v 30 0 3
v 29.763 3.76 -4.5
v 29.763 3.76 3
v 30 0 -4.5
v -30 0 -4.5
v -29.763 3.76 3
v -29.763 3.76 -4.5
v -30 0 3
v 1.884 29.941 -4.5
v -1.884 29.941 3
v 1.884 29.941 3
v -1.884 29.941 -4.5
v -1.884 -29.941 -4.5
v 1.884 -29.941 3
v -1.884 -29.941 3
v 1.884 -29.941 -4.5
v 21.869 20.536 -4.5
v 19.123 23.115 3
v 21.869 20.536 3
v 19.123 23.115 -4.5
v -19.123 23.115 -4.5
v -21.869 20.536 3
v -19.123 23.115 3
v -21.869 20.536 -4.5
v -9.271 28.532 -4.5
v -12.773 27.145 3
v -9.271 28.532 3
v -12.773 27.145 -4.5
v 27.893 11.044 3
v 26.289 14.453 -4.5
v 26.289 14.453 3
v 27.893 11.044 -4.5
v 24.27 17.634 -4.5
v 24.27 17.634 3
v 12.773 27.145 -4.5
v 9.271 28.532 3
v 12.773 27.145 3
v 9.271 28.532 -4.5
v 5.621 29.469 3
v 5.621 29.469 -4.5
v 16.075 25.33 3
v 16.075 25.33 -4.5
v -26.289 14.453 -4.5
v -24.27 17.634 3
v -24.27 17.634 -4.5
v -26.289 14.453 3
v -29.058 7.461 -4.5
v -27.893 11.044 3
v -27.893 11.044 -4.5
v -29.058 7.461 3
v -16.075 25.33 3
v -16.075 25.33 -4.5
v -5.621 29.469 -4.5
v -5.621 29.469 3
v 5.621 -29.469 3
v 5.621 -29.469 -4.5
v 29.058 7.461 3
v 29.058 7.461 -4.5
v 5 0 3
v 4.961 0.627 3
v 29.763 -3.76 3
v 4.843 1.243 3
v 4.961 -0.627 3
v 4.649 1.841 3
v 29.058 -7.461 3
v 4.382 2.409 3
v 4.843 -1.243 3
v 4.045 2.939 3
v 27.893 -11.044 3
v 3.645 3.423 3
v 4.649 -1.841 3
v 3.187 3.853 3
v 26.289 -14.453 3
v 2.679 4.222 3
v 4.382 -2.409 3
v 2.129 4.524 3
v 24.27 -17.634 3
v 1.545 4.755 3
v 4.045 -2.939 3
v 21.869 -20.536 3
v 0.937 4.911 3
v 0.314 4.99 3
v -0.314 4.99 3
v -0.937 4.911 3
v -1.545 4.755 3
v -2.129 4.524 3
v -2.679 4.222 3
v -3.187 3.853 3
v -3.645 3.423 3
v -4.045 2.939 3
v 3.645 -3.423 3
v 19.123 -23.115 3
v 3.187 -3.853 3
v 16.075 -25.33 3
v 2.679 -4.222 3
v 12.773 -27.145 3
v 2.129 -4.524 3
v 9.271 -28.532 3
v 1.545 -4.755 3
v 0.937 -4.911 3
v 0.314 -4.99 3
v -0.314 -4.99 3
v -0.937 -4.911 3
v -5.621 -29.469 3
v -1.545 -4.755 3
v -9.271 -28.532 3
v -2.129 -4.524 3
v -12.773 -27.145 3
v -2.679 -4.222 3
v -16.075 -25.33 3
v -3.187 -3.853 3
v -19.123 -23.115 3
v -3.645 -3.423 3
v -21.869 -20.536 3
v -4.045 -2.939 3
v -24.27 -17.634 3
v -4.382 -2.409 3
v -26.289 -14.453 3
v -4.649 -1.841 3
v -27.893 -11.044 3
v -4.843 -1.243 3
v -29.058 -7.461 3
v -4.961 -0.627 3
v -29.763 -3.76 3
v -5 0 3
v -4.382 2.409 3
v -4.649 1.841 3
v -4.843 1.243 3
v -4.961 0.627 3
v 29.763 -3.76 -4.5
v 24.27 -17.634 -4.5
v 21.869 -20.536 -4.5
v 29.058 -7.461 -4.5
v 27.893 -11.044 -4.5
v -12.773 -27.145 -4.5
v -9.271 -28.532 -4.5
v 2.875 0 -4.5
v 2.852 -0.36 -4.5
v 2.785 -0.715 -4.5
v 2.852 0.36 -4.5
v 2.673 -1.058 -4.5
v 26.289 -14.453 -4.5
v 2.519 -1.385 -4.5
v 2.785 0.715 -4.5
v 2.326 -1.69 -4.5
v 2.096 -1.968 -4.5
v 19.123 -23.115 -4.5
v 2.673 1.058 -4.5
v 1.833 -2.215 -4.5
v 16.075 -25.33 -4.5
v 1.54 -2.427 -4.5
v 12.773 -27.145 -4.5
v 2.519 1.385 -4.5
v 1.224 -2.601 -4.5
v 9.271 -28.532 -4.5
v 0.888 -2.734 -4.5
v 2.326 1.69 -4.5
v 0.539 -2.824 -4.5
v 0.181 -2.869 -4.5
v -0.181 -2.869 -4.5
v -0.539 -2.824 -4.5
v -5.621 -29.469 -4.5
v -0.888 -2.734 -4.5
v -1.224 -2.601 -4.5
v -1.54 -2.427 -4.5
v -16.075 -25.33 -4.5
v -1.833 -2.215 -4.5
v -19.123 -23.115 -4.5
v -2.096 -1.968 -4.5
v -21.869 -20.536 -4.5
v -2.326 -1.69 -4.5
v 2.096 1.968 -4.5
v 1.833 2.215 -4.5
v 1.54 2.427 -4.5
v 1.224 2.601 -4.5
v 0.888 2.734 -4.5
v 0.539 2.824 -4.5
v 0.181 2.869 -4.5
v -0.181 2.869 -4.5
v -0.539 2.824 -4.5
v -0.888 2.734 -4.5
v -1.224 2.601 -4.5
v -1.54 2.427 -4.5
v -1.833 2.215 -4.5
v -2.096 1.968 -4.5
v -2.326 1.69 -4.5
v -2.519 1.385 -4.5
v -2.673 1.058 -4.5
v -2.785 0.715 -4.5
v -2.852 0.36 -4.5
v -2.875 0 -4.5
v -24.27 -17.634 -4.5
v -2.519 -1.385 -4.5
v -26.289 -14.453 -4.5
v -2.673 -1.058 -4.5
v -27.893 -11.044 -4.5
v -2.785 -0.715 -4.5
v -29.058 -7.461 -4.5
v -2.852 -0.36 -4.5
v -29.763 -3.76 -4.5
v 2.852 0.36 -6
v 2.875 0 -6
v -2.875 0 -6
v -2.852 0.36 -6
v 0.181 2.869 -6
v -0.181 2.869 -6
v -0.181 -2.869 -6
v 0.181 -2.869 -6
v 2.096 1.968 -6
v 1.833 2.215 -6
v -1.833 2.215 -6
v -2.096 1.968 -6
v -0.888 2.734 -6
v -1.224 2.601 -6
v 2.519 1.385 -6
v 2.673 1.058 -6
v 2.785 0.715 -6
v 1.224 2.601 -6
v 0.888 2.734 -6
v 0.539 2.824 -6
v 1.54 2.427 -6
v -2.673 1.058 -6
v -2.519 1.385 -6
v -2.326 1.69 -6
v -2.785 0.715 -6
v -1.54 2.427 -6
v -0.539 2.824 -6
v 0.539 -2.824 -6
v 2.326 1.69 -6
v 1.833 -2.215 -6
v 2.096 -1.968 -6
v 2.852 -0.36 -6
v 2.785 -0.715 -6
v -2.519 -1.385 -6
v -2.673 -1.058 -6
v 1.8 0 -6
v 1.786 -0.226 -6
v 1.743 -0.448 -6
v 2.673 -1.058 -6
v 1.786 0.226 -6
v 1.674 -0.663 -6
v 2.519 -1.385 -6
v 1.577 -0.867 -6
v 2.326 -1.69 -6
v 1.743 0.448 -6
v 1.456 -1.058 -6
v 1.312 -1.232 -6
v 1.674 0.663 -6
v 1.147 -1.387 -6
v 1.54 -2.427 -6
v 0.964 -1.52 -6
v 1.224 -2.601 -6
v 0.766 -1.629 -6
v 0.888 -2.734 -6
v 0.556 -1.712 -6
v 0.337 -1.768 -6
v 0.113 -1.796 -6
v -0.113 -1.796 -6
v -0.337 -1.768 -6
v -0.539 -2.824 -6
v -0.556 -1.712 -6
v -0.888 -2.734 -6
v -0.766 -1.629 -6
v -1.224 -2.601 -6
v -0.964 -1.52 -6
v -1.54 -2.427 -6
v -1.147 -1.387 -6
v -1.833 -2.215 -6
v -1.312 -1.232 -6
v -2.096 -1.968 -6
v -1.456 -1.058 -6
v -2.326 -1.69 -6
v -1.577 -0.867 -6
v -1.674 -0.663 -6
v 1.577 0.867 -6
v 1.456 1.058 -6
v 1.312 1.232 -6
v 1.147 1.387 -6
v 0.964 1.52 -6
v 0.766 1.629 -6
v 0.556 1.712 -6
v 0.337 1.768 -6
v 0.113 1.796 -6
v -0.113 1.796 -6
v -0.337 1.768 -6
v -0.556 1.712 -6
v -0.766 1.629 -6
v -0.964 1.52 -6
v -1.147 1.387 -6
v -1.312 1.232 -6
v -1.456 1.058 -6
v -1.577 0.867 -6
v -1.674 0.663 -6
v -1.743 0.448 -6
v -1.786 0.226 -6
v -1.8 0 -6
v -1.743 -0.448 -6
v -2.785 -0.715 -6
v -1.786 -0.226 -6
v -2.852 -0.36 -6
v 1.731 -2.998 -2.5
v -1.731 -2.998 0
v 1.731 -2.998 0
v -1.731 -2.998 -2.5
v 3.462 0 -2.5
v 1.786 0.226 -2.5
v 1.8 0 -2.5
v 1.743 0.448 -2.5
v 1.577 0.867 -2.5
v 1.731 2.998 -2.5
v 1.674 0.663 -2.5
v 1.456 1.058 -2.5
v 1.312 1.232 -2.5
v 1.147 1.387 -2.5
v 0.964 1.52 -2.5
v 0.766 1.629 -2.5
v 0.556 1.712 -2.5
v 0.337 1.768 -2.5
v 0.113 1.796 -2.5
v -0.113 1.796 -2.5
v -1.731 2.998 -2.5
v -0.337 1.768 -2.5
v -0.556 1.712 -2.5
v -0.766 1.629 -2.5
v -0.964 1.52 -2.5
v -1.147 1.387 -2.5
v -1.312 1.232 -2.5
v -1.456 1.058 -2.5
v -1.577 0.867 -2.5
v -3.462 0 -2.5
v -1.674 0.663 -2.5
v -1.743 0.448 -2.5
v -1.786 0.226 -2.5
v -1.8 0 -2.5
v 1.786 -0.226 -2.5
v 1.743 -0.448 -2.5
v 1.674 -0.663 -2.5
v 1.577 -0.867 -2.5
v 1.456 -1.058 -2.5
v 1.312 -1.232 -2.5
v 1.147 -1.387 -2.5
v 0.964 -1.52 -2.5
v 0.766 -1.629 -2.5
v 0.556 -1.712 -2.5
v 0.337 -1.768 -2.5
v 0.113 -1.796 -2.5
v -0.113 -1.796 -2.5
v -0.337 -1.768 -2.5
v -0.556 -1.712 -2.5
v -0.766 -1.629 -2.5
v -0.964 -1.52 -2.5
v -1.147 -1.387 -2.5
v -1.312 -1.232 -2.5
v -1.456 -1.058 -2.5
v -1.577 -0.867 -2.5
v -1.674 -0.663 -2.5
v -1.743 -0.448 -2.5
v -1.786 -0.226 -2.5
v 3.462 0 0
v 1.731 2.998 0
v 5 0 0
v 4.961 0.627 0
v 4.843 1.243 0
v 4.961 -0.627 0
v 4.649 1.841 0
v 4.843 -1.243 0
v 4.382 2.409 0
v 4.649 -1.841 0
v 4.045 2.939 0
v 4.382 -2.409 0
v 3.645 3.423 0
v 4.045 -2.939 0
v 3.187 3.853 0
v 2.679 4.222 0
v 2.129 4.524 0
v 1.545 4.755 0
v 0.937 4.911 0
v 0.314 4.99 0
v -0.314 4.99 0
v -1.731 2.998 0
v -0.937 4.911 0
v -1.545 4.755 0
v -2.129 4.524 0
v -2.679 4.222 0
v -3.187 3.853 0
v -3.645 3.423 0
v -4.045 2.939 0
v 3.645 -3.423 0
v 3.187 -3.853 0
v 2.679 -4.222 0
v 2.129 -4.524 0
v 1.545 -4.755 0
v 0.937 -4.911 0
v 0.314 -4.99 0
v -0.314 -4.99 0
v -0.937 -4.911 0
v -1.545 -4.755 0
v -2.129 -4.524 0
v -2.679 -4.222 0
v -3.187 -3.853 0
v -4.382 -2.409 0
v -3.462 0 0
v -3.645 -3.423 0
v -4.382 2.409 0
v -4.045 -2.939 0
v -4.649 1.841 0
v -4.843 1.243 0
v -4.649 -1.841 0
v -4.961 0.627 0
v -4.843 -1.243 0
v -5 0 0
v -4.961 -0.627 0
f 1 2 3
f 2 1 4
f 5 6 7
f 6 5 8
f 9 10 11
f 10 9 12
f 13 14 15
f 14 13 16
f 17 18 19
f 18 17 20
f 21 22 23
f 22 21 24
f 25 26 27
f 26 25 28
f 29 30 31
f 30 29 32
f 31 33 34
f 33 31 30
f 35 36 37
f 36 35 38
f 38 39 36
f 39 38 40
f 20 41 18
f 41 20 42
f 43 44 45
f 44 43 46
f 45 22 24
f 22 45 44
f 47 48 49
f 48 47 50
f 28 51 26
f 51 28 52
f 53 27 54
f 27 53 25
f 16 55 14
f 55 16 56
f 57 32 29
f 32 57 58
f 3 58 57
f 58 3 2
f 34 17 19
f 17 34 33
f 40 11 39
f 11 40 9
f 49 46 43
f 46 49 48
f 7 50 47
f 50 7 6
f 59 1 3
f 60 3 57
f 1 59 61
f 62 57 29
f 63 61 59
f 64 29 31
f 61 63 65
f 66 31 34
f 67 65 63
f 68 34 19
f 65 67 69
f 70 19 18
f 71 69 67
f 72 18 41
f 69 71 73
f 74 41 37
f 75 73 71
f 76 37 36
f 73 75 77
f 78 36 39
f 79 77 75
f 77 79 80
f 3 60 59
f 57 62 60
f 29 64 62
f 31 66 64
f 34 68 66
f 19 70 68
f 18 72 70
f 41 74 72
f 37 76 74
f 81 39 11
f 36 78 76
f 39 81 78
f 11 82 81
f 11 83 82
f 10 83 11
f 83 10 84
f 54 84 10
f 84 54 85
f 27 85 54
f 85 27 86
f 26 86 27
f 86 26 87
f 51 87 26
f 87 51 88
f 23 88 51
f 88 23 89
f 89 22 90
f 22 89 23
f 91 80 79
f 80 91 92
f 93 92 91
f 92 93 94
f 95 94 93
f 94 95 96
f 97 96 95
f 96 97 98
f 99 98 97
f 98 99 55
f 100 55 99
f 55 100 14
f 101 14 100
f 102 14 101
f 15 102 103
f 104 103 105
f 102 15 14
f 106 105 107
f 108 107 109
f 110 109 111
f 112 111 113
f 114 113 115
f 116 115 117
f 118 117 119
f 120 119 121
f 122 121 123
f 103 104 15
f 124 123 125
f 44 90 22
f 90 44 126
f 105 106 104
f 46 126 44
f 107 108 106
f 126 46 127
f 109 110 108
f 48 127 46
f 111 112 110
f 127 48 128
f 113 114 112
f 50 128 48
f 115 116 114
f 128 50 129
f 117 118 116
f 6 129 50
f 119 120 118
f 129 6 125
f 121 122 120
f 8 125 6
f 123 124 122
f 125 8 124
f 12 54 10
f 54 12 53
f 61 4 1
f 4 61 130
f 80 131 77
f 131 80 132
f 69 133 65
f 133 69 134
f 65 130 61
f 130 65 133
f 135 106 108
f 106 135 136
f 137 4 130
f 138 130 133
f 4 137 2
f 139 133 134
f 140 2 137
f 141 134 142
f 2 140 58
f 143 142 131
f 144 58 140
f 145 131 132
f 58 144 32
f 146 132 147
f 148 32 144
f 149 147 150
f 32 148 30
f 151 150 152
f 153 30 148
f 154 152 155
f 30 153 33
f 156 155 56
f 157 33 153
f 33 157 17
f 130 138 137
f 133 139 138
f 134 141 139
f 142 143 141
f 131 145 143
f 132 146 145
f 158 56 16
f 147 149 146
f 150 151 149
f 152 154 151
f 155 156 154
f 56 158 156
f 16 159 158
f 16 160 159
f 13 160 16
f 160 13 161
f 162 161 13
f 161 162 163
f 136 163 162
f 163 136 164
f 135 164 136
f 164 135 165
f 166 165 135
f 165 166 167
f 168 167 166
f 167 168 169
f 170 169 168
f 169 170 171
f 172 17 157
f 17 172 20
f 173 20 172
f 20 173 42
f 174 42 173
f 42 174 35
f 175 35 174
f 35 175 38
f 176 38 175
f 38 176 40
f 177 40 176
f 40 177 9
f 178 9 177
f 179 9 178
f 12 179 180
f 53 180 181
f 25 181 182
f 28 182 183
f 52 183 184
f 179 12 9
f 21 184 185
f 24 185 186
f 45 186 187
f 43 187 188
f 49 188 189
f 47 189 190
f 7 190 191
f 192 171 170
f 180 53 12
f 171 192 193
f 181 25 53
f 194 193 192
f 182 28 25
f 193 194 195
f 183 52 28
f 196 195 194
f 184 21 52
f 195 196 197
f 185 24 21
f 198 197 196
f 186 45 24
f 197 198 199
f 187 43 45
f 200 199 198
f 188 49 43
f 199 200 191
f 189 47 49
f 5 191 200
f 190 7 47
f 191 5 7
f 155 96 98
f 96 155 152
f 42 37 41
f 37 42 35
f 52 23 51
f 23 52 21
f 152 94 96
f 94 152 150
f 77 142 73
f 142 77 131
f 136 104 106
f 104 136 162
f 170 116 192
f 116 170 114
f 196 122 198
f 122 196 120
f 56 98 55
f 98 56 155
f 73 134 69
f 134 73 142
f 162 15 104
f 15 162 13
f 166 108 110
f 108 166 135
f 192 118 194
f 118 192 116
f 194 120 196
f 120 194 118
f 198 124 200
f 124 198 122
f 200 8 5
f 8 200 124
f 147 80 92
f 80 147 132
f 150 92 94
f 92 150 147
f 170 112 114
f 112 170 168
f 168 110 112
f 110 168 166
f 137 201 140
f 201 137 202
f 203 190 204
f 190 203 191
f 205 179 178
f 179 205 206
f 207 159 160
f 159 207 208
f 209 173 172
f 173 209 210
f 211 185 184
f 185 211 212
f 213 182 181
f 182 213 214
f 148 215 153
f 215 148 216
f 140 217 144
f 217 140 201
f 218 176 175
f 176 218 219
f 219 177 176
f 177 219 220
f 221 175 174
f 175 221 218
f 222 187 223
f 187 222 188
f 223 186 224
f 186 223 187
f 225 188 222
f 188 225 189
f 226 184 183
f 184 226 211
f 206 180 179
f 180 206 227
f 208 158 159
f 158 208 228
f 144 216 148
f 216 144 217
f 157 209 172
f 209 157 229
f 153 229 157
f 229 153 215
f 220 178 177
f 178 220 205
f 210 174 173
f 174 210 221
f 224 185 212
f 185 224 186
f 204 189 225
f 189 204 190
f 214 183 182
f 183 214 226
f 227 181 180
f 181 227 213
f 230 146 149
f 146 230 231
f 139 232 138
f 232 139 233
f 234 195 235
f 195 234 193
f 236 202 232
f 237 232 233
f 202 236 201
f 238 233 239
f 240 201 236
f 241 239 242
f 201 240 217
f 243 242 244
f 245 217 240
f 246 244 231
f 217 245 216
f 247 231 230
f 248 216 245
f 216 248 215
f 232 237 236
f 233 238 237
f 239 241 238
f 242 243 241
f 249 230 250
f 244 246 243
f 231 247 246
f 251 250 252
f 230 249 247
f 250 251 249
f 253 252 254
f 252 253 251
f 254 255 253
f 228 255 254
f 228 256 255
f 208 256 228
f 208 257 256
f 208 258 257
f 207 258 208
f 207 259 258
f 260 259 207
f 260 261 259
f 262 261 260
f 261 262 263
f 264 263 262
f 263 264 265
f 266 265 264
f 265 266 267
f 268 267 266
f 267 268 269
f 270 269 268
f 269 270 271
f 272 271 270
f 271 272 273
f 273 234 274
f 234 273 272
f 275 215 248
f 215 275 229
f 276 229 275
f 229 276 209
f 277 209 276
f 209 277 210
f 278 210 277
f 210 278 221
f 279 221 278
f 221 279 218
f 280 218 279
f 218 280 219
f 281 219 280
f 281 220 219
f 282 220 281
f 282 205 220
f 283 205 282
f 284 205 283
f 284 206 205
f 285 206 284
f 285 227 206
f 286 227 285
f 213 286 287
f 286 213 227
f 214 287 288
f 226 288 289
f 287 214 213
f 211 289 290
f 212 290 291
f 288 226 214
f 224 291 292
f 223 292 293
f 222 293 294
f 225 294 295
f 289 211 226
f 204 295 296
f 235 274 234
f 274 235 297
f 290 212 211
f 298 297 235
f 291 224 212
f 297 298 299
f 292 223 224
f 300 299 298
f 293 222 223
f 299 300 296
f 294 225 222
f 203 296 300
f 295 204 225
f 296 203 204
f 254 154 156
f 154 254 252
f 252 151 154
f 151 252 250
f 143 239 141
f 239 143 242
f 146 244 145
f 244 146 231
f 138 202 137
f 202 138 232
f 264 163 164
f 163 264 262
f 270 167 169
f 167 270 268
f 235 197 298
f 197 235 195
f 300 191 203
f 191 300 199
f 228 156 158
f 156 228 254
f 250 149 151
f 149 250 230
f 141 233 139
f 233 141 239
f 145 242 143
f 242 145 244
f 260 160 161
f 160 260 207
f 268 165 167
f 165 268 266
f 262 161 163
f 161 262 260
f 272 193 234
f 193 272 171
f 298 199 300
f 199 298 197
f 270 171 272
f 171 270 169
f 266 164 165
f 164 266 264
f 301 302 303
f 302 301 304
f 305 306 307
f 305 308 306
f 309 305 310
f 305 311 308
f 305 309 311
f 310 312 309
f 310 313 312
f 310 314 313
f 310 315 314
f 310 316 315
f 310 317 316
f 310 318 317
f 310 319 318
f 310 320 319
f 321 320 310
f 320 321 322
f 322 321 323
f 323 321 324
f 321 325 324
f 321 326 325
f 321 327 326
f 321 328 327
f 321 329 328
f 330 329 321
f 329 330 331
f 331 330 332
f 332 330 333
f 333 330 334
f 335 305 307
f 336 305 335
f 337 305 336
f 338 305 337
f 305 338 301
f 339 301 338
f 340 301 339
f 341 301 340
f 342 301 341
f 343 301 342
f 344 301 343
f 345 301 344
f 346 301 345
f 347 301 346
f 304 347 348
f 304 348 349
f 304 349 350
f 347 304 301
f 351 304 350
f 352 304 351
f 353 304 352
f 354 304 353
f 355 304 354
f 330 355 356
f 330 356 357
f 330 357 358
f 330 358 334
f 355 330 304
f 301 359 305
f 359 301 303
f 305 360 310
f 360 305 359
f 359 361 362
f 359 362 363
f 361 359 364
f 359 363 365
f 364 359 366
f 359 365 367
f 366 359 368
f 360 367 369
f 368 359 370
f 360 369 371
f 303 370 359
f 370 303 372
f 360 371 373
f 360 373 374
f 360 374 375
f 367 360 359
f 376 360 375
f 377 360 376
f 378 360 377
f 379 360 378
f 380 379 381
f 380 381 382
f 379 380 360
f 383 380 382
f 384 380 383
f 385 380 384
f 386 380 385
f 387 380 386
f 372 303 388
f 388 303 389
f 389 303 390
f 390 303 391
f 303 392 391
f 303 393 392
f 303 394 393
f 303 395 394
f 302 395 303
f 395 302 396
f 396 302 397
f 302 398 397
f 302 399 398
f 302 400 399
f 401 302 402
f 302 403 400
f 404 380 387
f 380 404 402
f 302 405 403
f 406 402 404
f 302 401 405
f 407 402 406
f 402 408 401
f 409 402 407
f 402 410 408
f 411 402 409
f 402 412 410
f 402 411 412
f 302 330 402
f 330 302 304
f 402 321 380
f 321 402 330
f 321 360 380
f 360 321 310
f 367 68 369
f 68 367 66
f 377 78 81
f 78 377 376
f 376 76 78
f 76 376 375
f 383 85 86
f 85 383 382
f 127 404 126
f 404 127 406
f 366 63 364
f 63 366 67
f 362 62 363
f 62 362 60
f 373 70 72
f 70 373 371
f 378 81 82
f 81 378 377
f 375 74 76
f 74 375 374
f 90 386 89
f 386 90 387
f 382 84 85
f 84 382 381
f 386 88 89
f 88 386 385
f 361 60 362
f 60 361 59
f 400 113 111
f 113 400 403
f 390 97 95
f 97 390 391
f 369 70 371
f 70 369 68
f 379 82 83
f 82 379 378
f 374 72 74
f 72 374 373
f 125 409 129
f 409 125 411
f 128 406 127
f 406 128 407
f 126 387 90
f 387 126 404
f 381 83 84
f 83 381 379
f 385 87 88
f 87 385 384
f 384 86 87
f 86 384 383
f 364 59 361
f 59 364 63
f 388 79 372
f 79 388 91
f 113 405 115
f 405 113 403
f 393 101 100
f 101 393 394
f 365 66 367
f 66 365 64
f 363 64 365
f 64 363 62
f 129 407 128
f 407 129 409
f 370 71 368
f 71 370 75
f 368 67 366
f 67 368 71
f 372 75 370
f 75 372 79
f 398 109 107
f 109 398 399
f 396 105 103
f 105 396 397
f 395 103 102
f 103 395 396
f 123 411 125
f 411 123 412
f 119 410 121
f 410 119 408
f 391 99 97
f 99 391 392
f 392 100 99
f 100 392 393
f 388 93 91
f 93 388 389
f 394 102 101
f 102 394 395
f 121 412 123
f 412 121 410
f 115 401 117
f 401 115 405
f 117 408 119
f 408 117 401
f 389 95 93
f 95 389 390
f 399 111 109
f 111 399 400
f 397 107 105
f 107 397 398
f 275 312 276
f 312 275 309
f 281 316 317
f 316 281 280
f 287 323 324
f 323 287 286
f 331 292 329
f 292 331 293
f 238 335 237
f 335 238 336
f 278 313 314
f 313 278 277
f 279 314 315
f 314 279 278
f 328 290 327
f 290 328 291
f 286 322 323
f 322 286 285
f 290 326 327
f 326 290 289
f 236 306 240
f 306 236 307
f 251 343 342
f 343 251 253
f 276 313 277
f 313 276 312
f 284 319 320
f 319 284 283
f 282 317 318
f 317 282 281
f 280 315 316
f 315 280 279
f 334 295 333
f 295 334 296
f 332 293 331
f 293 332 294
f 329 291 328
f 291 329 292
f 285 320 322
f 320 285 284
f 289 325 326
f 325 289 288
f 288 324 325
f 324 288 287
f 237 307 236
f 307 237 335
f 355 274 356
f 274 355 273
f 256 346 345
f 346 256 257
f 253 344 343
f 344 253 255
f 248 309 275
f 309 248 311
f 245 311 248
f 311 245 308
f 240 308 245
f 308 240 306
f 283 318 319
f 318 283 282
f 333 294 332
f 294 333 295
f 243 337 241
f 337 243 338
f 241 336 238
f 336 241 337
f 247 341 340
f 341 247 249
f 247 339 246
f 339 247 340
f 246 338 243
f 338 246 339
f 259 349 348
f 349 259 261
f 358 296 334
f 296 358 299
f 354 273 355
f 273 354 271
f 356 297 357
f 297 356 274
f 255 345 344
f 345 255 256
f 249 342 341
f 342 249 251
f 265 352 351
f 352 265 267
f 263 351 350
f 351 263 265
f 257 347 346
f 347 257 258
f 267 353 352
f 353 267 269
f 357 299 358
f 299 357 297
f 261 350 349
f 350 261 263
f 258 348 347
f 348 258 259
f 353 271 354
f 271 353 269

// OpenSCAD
$fn = 50;


difference() {
	union() {
		translate(v = [0, 0, -4.5000000000]) {
			cylinder(h = 7.5000000000, r = 30.0000000000);
		}
		#translate(v = [0, 0, -6.0000000000]) {
			cylinder(h = 6, r = 2.8750000000);
		}
	}
	union() {
		translate(v = [0, 0, 0]) {
			rotate(a = [0, 0, 0]) {
				difference() {
					union() {
						translate(v = [0, 0, -2.5000000000]) {
							linear_extrude(height = 2.5000000000) {
								polygon(points = [[3.4620000000, 0.0000000000], [1.7310000000, 2.9981799479], [-1.7310000000, 2.9981799479], [-3.4620000000, 0.0000000000], [-1.7310000000, -2.9981799479], [1.7310000000, -2.9981799479]]);
							}
						}
					}
					union();
				}
			}
		}
		#cylinder(h = 3, r = 5.0000000000);
		#translate(v = [0, 0, -100.0000000000]) {
			cylinder(h = 200, r = 1.8000000000);
		}
	}
}
